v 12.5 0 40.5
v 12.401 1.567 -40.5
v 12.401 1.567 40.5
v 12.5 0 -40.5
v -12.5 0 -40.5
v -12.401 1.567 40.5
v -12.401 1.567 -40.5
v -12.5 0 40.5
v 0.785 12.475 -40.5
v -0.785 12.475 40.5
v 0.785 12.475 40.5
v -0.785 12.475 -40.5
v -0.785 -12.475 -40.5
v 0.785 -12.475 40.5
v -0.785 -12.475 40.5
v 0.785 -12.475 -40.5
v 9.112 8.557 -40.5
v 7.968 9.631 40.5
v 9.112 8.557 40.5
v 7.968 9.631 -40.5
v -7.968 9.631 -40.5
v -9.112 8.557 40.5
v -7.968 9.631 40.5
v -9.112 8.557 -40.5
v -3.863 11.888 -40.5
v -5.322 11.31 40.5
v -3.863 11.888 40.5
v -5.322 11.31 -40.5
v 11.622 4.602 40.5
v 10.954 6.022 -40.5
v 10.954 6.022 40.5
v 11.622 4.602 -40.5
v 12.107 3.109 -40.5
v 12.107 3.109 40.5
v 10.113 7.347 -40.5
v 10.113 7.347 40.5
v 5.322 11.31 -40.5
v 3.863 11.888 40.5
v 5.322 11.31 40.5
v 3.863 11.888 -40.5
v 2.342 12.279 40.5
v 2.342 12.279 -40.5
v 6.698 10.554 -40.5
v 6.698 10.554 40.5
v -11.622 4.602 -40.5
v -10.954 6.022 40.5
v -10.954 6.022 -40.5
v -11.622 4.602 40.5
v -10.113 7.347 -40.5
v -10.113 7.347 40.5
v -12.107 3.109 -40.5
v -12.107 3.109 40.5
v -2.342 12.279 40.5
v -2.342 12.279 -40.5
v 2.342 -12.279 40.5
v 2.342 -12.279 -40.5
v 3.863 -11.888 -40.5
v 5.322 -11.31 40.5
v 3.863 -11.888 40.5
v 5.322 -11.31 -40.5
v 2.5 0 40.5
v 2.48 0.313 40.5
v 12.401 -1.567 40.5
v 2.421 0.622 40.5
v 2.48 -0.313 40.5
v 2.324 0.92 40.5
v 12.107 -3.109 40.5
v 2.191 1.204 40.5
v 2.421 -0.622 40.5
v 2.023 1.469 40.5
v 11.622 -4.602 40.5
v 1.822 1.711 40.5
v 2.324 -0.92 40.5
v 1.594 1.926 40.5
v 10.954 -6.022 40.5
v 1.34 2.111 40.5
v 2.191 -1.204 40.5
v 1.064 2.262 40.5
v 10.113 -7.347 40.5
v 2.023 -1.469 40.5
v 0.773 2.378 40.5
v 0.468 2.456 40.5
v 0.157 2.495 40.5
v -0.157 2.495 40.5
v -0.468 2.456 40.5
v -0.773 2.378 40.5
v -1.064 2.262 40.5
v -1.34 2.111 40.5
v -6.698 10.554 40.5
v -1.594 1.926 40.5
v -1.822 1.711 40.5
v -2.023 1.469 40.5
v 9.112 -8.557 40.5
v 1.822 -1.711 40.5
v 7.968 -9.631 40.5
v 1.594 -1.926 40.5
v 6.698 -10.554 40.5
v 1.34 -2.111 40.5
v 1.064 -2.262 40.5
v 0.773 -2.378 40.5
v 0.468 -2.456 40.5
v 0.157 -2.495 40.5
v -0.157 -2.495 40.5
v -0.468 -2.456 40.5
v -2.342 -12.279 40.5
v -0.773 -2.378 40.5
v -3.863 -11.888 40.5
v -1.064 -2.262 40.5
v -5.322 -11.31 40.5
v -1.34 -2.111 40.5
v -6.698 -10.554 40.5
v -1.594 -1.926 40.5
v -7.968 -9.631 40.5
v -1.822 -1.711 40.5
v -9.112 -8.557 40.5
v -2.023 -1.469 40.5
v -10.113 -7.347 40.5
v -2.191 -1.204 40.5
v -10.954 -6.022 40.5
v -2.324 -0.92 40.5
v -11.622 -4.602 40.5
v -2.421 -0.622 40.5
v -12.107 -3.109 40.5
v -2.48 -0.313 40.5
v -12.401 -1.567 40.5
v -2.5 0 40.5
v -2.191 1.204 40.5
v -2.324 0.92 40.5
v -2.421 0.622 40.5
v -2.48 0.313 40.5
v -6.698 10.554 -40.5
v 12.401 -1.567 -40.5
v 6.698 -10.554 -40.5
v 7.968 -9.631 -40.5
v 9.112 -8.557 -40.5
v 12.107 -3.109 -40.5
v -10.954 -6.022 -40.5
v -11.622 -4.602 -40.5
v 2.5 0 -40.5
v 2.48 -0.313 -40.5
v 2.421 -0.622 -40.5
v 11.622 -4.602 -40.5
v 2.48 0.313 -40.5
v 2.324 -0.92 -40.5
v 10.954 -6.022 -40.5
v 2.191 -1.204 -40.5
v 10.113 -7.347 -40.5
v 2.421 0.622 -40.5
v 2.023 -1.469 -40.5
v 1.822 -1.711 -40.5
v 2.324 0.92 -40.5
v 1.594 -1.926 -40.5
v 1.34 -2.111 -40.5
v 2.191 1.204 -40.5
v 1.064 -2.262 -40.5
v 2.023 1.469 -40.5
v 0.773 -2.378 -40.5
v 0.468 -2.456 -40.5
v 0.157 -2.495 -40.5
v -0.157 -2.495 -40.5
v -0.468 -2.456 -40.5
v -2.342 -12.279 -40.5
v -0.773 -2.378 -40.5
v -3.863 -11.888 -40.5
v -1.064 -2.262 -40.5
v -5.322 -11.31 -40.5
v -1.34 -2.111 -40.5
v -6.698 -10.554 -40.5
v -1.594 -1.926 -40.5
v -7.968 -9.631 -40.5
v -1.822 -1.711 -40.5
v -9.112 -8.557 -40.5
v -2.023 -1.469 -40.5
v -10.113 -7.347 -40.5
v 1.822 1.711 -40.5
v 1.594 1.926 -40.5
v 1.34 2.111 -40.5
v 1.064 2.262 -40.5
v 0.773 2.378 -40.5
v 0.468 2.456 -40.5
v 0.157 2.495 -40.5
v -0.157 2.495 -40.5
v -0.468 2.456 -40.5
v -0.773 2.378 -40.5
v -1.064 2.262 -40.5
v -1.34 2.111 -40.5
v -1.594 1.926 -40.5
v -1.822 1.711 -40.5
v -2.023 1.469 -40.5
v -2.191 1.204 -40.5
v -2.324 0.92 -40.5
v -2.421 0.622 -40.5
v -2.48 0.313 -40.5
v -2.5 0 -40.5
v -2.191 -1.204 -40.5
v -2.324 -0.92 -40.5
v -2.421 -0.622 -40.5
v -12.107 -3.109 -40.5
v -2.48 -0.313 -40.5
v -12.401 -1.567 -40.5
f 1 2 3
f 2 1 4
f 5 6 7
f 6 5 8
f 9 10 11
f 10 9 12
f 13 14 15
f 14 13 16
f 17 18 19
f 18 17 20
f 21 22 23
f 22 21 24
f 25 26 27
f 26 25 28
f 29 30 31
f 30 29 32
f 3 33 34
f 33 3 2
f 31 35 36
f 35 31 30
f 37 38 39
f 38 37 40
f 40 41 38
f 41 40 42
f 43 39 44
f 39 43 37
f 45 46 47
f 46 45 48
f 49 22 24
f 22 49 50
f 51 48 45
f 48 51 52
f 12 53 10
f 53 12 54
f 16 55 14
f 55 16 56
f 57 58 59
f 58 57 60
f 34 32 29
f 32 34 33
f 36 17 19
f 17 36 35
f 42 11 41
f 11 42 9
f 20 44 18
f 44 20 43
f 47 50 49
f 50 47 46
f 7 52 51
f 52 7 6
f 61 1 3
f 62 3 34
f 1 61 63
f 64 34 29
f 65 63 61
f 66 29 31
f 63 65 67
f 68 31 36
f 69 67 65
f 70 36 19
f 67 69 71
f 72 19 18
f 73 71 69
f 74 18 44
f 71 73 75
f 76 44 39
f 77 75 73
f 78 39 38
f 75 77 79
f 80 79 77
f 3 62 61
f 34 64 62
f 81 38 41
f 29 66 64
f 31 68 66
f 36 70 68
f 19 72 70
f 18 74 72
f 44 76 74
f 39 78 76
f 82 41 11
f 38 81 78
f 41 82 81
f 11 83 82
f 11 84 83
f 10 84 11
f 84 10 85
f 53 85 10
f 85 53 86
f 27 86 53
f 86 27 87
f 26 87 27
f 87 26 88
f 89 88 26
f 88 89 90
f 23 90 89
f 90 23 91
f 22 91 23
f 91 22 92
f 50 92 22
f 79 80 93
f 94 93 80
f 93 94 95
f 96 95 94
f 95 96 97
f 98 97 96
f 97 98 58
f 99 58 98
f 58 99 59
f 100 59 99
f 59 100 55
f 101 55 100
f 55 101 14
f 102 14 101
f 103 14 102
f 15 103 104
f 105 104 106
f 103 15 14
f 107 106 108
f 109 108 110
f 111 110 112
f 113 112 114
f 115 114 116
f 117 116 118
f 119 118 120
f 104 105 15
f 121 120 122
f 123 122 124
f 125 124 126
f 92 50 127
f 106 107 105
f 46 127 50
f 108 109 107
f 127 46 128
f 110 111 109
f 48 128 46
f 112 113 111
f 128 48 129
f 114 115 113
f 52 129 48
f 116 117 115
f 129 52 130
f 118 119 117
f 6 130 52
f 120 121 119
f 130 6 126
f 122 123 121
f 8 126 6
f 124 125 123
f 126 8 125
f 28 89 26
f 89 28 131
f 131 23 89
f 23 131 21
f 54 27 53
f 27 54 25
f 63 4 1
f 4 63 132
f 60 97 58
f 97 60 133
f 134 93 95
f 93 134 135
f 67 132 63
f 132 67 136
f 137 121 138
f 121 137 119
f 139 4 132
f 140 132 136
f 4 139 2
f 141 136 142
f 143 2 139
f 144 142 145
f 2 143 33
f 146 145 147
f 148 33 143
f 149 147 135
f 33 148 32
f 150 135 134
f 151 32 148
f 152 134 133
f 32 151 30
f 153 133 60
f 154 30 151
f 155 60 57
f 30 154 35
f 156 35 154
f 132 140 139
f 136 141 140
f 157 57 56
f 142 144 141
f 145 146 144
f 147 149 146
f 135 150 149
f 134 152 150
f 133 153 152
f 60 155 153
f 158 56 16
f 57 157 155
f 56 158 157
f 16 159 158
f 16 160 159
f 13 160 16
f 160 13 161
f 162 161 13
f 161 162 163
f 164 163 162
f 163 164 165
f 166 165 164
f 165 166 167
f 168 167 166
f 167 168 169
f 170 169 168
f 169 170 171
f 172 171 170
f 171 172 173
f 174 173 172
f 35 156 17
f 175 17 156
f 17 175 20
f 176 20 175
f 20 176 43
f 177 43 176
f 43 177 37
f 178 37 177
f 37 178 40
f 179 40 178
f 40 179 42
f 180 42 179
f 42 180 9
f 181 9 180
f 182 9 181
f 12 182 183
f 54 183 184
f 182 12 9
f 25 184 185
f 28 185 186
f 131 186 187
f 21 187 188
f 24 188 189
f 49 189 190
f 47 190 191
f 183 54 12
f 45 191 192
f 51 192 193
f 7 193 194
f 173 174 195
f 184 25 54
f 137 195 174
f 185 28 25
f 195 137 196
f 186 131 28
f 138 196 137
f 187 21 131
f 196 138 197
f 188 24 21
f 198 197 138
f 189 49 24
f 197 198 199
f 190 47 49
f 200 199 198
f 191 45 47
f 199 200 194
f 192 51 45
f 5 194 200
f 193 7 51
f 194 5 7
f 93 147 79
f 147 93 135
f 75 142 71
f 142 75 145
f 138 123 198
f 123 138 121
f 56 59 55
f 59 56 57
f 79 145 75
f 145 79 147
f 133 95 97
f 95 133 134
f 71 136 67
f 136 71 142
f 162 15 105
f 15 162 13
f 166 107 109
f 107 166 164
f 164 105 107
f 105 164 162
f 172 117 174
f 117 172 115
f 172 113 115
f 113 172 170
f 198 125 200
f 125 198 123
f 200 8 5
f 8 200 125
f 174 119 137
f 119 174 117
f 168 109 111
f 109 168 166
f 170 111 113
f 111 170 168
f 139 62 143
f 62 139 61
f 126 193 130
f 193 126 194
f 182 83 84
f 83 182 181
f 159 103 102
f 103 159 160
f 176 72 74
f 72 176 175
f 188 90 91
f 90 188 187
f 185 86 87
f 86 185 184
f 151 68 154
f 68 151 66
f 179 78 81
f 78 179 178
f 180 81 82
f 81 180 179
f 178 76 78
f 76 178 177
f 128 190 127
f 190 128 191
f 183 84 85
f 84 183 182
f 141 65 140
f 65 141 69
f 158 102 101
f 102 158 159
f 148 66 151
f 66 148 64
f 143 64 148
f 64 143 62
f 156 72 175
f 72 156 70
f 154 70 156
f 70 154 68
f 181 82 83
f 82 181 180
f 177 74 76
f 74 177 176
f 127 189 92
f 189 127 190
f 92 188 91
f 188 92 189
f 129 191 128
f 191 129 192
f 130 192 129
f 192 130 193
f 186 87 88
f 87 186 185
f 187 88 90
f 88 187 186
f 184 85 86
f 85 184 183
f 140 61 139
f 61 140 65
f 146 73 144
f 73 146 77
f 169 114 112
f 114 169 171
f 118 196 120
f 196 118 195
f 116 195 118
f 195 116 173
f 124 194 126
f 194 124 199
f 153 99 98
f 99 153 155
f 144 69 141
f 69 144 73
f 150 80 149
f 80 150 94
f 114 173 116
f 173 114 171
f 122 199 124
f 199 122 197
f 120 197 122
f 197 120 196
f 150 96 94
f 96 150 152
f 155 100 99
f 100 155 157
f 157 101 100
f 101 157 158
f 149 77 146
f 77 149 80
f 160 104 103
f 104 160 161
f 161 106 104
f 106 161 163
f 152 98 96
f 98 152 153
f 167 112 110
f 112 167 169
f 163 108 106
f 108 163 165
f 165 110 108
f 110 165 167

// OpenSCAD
$fn = 50;


difference() {
	union() {
		translate(v = [0, 0, -40.5000000000]) {
			cylinder(h = 81, r = 12.5000000000);
		}
	}
	union() {
		translate(v = [0, 0, -100.0000000000]) {
			cylinder(h = 200, r = 2.5000000000);
		}
	}
}
